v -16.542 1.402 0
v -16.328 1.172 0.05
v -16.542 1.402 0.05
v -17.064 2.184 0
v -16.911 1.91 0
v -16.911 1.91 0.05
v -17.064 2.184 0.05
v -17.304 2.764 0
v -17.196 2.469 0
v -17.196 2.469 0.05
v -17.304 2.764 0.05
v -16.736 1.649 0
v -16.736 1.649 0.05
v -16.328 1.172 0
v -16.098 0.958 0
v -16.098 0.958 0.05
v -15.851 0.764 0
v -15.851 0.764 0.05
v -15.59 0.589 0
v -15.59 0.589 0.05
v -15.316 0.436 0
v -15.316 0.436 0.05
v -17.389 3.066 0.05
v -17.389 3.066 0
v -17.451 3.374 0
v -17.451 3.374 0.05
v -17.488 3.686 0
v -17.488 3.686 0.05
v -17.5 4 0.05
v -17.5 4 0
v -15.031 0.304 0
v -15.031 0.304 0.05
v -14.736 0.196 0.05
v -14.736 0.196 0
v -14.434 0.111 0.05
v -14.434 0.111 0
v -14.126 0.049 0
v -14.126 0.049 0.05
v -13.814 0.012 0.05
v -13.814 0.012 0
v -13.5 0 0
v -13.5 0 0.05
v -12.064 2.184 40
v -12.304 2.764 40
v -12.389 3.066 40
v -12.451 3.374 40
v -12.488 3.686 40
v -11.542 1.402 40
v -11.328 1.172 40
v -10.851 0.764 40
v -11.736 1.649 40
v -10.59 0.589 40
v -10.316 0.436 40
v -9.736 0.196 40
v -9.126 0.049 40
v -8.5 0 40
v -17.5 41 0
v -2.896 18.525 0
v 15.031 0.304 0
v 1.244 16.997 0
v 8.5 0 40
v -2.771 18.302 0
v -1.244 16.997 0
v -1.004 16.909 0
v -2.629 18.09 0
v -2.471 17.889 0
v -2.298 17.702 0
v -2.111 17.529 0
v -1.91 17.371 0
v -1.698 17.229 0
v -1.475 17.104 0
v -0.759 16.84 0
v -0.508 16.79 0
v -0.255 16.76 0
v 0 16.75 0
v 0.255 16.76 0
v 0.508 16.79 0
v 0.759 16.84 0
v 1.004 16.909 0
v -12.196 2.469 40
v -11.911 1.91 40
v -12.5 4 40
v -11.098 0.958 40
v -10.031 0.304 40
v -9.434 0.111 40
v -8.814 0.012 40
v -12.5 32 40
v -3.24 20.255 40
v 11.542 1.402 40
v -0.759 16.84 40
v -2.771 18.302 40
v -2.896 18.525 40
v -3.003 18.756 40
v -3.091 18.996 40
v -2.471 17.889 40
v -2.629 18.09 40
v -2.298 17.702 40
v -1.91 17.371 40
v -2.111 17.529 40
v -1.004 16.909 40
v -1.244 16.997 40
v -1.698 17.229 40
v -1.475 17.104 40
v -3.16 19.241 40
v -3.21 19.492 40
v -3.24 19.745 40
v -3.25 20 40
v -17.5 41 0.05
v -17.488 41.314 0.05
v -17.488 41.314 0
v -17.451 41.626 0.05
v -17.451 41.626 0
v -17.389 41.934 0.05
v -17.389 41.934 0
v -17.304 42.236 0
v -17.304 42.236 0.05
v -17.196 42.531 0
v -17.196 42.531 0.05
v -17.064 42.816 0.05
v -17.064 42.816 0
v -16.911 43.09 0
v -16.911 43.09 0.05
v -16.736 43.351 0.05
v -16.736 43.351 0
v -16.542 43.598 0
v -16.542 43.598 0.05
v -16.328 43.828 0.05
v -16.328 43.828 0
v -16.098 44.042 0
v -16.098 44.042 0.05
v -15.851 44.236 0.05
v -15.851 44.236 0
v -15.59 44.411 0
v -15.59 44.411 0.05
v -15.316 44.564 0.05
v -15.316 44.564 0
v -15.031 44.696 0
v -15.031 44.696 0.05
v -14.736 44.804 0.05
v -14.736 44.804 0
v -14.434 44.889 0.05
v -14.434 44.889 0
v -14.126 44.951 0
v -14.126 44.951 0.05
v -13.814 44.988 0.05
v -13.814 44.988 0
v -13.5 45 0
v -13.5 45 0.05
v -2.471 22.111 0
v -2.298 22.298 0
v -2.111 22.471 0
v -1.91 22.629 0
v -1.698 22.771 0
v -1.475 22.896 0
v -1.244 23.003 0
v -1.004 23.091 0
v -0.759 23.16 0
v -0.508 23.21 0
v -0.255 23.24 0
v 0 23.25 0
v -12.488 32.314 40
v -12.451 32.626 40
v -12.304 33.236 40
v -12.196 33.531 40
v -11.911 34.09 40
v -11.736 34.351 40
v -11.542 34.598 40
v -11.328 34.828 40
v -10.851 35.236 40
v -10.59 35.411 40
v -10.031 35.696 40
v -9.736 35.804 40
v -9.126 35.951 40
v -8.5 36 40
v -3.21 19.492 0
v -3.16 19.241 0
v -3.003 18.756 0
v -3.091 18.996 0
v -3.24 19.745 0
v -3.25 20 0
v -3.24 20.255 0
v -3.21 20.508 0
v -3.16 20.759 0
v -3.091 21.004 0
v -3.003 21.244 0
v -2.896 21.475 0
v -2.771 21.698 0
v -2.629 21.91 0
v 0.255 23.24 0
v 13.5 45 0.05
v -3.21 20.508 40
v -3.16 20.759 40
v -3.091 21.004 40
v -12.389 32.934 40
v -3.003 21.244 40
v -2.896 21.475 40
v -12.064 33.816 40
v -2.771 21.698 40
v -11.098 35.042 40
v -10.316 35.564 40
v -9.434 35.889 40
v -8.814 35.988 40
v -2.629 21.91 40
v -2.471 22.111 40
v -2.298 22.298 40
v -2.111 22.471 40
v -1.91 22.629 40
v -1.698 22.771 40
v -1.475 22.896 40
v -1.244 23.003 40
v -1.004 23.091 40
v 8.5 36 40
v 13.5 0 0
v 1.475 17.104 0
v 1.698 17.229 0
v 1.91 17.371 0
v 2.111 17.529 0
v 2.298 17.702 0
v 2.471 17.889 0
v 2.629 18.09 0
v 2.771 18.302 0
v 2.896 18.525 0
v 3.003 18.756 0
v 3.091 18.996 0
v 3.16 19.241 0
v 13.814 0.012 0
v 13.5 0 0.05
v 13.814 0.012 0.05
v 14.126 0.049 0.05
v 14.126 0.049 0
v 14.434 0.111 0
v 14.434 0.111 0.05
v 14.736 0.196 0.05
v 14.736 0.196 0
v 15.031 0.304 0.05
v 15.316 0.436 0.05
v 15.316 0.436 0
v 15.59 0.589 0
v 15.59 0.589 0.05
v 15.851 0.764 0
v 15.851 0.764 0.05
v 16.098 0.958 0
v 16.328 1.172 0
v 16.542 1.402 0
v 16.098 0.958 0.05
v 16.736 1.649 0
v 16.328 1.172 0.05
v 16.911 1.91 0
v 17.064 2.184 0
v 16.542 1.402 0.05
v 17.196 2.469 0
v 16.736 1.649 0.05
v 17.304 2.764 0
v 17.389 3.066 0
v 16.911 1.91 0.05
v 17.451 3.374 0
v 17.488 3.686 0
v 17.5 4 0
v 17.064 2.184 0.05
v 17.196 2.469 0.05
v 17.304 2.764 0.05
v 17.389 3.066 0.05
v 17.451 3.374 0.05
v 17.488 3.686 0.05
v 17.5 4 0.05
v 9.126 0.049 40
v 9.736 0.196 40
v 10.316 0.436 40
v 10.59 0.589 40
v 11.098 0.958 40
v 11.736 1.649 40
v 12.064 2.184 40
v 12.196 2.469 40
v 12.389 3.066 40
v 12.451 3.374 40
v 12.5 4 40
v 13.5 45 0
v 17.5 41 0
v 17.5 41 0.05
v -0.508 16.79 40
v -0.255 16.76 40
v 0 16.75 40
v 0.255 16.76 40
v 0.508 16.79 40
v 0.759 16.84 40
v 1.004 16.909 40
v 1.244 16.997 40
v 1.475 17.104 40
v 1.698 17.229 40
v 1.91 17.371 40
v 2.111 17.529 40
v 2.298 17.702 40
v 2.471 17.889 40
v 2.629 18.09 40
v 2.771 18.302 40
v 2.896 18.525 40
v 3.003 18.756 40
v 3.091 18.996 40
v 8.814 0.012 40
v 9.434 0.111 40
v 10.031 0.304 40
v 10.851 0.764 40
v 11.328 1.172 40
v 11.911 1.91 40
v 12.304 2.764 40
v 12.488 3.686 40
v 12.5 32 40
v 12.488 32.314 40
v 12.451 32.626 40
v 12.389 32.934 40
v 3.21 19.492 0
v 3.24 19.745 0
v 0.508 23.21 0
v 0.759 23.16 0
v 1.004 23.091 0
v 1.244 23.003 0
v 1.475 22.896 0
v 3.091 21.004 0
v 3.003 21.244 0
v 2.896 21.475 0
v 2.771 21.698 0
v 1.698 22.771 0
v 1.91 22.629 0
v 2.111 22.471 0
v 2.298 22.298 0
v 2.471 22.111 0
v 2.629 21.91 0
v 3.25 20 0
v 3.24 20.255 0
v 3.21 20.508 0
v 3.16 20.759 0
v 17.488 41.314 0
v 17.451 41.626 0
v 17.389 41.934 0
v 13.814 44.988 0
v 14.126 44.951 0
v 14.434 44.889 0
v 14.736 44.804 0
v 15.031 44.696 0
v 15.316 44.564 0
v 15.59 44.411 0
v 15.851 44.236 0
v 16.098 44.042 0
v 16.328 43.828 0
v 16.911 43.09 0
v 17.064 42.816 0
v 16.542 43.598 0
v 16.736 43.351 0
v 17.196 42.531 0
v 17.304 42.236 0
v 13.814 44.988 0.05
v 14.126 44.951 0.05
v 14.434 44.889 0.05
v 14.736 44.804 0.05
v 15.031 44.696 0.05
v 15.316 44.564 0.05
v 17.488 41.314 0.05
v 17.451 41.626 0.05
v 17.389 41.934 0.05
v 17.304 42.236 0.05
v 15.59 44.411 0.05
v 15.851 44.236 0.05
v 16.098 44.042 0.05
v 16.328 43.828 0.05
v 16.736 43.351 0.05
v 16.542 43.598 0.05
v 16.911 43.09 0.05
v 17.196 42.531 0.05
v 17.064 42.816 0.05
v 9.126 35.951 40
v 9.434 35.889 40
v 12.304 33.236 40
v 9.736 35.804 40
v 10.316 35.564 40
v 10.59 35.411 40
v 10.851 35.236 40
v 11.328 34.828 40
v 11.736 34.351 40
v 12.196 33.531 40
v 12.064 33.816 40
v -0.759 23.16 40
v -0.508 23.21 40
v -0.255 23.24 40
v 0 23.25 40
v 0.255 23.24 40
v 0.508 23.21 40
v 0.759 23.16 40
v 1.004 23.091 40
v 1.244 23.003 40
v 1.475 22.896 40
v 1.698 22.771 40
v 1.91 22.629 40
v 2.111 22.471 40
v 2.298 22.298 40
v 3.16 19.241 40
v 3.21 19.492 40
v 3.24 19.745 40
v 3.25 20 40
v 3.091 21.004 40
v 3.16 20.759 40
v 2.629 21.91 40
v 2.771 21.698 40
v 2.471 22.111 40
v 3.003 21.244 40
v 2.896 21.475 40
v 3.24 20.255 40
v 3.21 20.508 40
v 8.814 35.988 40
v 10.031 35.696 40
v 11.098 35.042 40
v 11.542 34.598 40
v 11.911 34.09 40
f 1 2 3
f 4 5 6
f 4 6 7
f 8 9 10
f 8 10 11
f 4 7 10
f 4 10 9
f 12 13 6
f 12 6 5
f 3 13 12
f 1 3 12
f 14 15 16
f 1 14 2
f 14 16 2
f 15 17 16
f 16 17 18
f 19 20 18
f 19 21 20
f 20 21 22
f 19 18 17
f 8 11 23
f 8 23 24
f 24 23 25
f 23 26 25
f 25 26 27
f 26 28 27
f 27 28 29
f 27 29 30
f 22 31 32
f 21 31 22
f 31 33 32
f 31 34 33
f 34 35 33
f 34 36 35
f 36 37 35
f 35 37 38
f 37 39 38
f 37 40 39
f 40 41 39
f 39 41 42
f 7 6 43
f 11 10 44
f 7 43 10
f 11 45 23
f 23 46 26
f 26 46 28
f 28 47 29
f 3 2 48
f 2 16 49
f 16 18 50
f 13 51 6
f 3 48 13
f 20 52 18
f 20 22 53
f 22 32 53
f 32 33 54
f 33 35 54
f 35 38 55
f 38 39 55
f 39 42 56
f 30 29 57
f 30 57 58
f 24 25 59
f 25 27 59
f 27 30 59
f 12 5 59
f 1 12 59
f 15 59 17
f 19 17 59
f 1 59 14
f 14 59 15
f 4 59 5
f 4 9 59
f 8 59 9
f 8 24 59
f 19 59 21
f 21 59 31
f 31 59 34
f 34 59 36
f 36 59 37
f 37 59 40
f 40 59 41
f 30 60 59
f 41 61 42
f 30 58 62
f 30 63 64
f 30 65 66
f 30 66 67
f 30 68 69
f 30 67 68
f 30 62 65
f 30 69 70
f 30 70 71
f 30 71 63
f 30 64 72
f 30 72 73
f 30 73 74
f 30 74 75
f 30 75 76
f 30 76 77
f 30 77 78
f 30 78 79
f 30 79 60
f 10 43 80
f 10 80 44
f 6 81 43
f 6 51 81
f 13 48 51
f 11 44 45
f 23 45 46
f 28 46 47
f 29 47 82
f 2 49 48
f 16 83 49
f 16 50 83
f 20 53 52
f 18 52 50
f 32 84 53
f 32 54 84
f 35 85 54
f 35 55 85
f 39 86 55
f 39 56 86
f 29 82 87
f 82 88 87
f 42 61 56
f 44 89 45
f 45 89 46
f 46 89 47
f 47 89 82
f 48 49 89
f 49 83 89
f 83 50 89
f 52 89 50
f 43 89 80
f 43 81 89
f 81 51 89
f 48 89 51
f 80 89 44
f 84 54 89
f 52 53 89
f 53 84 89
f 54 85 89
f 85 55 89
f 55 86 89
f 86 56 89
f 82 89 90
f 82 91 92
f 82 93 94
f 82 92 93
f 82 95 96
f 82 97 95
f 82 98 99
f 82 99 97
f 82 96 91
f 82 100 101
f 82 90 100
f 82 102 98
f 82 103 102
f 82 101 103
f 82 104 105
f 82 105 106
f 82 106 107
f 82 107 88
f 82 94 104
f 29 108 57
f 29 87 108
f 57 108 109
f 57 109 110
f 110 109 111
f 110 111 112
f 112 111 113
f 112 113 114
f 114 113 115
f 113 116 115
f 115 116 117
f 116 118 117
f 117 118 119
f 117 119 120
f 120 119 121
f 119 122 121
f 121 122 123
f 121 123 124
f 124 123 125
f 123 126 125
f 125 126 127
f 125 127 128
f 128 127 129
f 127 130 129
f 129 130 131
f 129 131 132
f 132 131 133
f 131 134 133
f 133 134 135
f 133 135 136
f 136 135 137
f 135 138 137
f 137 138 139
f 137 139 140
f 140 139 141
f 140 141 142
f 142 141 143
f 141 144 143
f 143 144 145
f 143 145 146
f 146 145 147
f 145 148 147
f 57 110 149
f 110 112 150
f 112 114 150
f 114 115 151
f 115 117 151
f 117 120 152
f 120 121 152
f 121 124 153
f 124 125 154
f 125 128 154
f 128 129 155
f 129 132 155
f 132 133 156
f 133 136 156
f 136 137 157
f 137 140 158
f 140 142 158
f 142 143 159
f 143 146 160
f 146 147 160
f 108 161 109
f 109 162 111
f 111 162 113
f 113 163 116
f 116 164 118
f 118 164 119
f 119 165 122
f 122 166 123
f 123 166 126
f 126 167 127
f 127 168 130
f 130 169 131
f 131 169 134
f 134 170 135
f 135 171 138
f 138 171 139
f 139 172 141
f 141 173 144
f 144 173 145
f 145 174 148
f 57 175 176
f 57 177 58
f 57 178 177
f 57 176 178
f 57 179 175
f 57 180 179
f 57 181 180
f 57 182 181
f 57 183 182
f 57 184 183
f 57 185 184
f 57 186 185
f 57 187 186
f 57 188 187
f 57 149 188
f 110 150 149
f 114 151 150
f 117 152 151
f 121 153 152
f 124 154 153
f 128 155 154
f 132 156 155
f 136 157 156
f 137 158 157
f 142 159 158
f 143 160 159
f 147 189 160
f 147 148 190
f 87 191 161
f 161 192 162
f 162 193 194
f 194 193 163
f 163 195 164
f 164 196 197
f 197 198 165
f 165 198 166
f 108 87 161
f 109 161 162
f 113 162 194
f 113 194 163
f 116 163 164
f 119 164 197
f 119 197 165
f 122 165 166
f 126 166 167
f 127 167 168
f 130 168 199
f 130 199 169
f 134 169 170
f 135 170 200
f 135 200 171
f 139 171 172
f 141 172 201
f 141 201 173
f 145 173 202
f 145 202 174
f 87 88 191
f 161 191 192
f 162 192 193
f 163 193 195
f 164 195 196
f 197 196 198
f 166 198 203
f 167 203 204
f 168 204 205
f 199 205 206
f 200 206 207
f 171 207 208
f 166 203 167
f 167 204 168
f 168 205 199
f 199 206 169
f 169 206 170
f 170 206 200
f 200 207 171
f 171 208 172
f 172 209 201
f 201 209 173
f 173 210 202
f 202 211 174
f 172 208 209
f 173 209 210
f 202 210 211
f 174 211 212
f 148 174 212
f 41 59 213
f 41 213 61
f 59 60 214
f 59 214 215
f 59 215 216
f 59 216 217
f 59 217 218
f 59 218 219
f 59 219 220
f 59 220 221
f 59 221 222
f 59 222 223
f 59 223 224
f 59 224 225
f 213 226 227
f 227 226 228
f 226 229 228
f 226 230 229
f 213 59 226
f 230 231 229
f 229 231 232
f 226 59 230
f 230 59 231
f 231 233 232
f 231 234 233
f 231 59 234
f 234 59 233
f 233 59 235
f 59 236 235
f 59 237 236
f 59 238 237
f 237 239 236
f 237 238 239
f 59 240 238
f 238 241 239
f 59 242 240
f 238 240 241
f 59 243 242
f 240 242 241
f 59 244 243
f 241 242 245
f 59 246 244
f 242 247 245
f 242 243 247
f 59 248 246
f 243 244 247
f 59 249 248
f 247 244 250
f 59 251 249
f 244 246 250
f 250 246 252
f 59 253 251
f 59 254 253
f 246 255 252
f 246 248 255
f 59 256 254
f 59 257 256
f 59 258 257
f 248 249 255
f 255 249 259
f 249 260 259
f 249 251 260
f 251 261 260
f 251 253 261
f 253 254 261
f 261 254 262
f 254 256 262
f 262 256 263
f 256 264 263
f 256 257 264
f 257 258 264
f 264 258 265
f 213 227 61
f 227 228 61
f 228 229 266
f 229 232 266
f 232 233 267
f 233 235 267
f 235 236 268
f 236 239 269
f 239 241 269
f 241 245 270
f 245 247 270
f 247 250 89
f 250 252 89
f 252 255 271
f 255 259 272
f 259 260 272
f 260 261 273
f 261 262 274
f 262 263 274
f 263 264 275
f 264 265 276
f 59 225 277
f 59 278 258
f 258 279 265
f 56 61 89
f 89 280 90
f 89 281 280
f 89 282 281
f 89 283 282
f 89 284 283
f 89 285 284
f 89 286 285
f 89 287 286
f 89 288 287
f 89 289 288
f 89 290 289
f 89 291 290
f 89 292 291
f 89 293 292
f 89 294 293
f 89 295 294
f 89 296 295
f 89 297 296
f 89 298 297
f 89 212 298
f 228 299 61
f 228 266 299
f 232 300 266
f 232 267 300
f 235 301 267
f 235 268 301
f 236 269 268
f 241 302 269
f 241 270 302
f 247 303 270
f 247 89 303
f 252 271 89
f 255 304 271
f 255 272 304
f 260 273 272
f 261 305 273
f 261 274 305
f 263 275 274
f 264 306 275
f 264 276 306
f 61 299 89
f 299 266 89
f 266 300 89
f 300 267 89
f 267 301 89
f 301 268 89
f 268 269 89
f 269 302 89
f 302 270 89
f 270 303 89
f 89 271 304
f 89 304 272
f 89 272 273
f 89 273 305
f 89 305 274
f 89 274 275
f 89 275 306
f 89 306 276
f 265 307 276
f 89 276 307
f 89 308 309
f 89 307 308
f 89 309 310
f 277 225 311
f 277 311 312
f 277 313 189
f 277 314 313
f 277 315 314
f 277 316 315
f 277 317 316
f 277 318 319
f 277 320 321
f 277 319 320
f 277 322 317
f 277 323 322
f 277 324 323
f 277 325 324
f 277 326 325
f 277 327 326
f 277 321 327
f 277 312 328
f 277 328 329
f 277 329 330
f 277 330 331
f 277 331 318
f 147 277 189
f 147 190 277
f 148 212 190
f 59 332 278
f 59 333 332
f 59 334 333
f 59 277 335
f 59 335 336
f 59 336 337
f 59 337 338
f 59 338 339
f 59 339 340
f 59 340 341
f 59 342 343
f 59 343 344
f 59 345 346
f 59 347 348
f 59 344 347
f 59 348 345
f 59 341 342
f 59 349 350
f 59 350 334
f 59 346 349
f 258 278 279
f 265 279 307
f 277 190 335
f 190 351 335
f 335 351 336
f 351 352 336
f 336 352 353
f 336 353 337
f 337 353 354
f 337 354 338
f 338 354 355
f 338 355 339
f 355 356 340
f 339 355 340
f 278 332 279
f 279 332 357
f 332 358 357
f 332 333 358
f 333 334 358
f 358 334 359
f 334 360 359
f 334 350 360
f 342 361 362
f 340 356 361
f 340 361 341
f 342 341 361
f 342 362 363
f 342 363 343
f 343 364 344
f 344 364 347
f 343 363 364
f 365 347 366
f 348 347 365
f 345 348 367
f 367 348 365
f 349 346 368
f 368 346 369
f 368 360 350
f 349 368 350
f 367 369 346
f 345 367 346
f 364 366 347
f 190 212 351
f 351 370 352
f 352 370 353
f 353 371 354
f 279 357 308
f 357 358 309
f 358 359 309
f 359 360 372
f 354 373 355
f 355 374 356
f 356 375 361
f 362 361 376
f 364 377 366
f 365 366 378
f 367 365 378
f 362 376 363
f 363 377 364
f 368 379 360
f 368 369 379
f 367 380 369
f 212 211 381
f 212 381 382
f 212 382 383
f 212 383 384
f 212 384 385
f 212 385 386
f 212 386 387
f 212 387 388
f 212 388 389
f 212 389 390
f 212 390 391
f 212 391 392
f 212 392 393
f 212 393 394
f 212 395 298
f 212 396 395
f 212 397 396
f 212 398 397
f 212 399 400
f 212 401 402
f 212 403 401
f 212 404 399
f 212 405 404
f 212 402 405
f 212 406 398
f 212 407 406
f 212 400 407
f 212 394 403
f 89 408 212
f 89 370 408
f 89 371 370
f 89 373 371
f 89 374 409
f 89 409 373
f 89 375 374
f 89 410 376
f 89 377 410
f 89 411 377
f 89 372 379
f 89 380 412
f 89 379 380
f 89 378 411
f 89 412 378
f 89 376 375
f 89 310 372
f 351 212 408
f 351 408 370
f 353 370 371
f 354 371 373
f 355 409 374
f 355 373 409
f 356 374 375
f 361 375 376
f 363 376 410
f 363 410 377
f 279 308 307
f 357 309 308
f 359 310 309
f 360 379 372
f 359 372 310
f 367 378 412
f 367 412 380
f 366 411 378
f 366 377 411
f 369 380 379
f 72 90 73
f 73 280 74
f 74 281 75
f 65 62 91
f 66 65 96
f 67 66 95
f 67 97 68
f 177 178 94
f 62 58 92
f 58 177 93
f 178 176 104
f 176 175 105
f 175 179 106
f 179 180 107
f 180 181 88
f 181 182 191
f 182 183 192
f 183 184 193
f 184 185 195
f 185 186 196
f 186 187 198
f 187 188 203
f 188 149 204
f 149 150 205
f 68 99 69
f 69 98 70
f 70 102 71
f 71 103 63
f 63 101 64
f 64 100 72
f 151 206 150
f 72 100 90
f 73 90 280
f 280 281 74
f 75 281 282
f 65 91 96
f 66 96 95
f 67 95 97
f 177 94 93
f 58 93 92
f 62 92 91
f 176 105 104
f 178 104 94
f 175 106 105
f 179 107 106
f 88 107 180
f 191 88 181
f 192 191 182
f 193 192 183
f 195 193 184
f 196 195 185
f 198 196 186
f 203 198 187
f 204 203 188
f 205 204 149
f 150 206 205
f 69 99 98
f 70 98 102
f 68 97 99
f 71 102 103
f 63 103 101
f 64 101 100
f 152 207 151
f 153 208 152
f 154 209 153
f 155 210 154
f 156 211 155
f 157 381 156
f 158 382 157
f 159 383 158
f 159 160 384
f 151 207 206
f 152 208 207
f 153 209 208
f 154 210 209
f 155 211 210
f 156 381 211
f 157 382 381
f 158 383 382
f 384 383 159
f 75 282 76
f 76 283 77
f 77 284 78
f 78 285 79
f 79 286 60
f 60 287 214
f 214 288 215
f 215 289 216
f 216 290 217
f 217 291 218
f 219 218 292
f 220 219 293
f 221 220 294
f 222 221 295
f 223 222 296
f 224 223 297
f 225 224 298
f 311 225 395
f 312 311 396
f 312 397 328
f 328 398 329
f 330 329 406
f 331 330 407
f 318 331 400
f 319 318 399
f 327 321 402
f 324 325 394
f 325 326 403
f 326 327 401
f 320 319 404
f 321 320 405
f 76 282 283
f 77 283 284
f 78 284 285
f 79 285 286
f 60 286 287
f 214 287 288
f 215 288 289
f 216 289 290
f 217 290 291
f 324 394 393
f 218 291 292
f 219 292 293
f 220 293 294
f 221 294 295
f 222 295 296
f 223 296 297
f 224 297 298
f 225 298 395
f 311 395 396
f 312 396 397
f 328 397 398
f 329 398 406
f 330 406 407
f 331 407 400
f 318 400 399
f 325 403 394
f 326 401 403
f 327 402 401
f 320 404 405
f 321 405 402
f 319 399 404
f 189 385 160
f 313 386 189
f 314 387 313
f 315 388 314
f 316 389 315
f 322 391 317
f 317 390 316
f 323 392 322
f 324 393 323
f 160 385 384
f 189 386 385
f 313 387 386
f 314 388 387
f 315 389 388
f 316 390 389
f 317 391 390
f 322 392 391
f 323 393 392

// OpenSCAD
// Title: Kiteboard Handle Spacer
// File: Kiteboard-Handle-Spacer.scad
// Version: v0.01
// Date: 2026-05-26
// Author: Zed Coding Agent
// Description: Parametric spacer to raise a kiteboard handle by 40mm.
//              Features a right-trapezoid side profile (sloped outer face, vertical inner face)
//              and a symmetric trapezoid end profile. Fits Crazyfly and other standard handles.

/* [Spacer Dimensions] */
// Total height of the spacer (raises the handle by this amount)
spacer_height = 40; // [10:1:100]

// Width of the spacer at the top interface with the handle (transverse to handle)
top_width = 25; // [10:1:100]

// Width of the spacer at the bottom interface with the board (transverse to handle)
bottom_width = 35; // [10:1:100]

// Length of the spacer at the top (along the length of the handle)
top_length = 36; // [10:1:100]

// Length of the spacer at the bottom (along the length of the handle)
bottom_length = 45; // [10:1:100]

// Corner radius for rounding vertical edges (smooth corners for safety and aerodynamics)
corner_radius = 4; // [0:0.5:15]

/* [Bolt Hole Settings] */
// Distance of the bolt hole from the flat/straight vertical inner side
bolt_distance_from_straight = 20; // [5:1:50]

// Diameter of the bolt through-hole (M6 screw is standard, 6.5mm allows easy clearance)
bolt_diameter = 6.5; // [4:0.1:10]

// Add an optional counterbore/recess for the screw head or washer at the top
enable_counterbore = false;

// Diameter of the counterbore recess (if enabled)
counterbore_diameter = 11.0; // [8:0.1:20]

// Depth of the counterbore recess from the top surface (if enabled)
counterbore_depth = 5.0; // [1:0.5:20]

/* [Advanced / Print Optimization] */
// Smoothness of circles and curves
$fn = 80; // [12:4:200]

// Recommended 3D Printing Settings for Kiteboard Handles:
// - Material: ASA or PETG (ASA is preferred for excellent UV resistance and strength)
// - Perimeters: 4 or more (for high mechanical strength around bolt holes)
// - Infill: 25% to 40% (Gyroid or Grid infill patterns work best)
// - Support: Not required if printed flat on the bottom face (z = 0)

// Helper module to generate a 2D rounded rectangle
// Centered at X = 0, and spanning from Y = 0 to Y = length
module profile_2d(width, length, radius) {
    inner_w = width - 2 * radius;
    inner_l = length - 2 * radius;

    if (inner_w > 0 && inner_l > 0) {
        translate([-inner_w / 2, radius])
        offset(r = radius)
        square([inner_w, inner_l]);
    } else {
        // Fallback to simple rectangle if radius is too large
        translate([-width / 2, 0])
        square([width, length]);
    }
}

module spacer_body() {
    // Clamp corner radius to prevent geometric errors
    safe_r_top = min(corner_radius, top_width / 2 - 0.1, top_length / 2 - 0.1);
    safe_r_bot = min(corner_radius, bottom_width / 2 - 0.1, bottom_length / 2 - 0.1);

    hull() {
        // Bottom profile at z = 0
        linear_extrude(height = 0.05)
        profile_2d(bottom_width, bottom_length, safe_r_bot);

        // Top profile at z = spacer_height - 0.05
        translate([0, 0, spacer_height - 0.05])
        linear_extrude(height = 0.05)
        profile_2d(top_width, top_length, safe_r_top);
    }
}

module spacer_with_holes() {
    difference() {
        spacer_body();

        // Bolt through-hole
        translate([0, bolt_distance_from_straight, -1])
        cylinder(d = bolt_diameter, h = spacer_height + 2);

        // Optional counterbore at the top
        if (enable_counterbore) {
            translate([0, bolt_distance_from_straight, spacer_height - counterbore_depth])
            cylinder(d = counterbore_diameter, h = counterbore_depth + 1);
        }
    }
}

// Instantiate the model
spacer_with_holes();
